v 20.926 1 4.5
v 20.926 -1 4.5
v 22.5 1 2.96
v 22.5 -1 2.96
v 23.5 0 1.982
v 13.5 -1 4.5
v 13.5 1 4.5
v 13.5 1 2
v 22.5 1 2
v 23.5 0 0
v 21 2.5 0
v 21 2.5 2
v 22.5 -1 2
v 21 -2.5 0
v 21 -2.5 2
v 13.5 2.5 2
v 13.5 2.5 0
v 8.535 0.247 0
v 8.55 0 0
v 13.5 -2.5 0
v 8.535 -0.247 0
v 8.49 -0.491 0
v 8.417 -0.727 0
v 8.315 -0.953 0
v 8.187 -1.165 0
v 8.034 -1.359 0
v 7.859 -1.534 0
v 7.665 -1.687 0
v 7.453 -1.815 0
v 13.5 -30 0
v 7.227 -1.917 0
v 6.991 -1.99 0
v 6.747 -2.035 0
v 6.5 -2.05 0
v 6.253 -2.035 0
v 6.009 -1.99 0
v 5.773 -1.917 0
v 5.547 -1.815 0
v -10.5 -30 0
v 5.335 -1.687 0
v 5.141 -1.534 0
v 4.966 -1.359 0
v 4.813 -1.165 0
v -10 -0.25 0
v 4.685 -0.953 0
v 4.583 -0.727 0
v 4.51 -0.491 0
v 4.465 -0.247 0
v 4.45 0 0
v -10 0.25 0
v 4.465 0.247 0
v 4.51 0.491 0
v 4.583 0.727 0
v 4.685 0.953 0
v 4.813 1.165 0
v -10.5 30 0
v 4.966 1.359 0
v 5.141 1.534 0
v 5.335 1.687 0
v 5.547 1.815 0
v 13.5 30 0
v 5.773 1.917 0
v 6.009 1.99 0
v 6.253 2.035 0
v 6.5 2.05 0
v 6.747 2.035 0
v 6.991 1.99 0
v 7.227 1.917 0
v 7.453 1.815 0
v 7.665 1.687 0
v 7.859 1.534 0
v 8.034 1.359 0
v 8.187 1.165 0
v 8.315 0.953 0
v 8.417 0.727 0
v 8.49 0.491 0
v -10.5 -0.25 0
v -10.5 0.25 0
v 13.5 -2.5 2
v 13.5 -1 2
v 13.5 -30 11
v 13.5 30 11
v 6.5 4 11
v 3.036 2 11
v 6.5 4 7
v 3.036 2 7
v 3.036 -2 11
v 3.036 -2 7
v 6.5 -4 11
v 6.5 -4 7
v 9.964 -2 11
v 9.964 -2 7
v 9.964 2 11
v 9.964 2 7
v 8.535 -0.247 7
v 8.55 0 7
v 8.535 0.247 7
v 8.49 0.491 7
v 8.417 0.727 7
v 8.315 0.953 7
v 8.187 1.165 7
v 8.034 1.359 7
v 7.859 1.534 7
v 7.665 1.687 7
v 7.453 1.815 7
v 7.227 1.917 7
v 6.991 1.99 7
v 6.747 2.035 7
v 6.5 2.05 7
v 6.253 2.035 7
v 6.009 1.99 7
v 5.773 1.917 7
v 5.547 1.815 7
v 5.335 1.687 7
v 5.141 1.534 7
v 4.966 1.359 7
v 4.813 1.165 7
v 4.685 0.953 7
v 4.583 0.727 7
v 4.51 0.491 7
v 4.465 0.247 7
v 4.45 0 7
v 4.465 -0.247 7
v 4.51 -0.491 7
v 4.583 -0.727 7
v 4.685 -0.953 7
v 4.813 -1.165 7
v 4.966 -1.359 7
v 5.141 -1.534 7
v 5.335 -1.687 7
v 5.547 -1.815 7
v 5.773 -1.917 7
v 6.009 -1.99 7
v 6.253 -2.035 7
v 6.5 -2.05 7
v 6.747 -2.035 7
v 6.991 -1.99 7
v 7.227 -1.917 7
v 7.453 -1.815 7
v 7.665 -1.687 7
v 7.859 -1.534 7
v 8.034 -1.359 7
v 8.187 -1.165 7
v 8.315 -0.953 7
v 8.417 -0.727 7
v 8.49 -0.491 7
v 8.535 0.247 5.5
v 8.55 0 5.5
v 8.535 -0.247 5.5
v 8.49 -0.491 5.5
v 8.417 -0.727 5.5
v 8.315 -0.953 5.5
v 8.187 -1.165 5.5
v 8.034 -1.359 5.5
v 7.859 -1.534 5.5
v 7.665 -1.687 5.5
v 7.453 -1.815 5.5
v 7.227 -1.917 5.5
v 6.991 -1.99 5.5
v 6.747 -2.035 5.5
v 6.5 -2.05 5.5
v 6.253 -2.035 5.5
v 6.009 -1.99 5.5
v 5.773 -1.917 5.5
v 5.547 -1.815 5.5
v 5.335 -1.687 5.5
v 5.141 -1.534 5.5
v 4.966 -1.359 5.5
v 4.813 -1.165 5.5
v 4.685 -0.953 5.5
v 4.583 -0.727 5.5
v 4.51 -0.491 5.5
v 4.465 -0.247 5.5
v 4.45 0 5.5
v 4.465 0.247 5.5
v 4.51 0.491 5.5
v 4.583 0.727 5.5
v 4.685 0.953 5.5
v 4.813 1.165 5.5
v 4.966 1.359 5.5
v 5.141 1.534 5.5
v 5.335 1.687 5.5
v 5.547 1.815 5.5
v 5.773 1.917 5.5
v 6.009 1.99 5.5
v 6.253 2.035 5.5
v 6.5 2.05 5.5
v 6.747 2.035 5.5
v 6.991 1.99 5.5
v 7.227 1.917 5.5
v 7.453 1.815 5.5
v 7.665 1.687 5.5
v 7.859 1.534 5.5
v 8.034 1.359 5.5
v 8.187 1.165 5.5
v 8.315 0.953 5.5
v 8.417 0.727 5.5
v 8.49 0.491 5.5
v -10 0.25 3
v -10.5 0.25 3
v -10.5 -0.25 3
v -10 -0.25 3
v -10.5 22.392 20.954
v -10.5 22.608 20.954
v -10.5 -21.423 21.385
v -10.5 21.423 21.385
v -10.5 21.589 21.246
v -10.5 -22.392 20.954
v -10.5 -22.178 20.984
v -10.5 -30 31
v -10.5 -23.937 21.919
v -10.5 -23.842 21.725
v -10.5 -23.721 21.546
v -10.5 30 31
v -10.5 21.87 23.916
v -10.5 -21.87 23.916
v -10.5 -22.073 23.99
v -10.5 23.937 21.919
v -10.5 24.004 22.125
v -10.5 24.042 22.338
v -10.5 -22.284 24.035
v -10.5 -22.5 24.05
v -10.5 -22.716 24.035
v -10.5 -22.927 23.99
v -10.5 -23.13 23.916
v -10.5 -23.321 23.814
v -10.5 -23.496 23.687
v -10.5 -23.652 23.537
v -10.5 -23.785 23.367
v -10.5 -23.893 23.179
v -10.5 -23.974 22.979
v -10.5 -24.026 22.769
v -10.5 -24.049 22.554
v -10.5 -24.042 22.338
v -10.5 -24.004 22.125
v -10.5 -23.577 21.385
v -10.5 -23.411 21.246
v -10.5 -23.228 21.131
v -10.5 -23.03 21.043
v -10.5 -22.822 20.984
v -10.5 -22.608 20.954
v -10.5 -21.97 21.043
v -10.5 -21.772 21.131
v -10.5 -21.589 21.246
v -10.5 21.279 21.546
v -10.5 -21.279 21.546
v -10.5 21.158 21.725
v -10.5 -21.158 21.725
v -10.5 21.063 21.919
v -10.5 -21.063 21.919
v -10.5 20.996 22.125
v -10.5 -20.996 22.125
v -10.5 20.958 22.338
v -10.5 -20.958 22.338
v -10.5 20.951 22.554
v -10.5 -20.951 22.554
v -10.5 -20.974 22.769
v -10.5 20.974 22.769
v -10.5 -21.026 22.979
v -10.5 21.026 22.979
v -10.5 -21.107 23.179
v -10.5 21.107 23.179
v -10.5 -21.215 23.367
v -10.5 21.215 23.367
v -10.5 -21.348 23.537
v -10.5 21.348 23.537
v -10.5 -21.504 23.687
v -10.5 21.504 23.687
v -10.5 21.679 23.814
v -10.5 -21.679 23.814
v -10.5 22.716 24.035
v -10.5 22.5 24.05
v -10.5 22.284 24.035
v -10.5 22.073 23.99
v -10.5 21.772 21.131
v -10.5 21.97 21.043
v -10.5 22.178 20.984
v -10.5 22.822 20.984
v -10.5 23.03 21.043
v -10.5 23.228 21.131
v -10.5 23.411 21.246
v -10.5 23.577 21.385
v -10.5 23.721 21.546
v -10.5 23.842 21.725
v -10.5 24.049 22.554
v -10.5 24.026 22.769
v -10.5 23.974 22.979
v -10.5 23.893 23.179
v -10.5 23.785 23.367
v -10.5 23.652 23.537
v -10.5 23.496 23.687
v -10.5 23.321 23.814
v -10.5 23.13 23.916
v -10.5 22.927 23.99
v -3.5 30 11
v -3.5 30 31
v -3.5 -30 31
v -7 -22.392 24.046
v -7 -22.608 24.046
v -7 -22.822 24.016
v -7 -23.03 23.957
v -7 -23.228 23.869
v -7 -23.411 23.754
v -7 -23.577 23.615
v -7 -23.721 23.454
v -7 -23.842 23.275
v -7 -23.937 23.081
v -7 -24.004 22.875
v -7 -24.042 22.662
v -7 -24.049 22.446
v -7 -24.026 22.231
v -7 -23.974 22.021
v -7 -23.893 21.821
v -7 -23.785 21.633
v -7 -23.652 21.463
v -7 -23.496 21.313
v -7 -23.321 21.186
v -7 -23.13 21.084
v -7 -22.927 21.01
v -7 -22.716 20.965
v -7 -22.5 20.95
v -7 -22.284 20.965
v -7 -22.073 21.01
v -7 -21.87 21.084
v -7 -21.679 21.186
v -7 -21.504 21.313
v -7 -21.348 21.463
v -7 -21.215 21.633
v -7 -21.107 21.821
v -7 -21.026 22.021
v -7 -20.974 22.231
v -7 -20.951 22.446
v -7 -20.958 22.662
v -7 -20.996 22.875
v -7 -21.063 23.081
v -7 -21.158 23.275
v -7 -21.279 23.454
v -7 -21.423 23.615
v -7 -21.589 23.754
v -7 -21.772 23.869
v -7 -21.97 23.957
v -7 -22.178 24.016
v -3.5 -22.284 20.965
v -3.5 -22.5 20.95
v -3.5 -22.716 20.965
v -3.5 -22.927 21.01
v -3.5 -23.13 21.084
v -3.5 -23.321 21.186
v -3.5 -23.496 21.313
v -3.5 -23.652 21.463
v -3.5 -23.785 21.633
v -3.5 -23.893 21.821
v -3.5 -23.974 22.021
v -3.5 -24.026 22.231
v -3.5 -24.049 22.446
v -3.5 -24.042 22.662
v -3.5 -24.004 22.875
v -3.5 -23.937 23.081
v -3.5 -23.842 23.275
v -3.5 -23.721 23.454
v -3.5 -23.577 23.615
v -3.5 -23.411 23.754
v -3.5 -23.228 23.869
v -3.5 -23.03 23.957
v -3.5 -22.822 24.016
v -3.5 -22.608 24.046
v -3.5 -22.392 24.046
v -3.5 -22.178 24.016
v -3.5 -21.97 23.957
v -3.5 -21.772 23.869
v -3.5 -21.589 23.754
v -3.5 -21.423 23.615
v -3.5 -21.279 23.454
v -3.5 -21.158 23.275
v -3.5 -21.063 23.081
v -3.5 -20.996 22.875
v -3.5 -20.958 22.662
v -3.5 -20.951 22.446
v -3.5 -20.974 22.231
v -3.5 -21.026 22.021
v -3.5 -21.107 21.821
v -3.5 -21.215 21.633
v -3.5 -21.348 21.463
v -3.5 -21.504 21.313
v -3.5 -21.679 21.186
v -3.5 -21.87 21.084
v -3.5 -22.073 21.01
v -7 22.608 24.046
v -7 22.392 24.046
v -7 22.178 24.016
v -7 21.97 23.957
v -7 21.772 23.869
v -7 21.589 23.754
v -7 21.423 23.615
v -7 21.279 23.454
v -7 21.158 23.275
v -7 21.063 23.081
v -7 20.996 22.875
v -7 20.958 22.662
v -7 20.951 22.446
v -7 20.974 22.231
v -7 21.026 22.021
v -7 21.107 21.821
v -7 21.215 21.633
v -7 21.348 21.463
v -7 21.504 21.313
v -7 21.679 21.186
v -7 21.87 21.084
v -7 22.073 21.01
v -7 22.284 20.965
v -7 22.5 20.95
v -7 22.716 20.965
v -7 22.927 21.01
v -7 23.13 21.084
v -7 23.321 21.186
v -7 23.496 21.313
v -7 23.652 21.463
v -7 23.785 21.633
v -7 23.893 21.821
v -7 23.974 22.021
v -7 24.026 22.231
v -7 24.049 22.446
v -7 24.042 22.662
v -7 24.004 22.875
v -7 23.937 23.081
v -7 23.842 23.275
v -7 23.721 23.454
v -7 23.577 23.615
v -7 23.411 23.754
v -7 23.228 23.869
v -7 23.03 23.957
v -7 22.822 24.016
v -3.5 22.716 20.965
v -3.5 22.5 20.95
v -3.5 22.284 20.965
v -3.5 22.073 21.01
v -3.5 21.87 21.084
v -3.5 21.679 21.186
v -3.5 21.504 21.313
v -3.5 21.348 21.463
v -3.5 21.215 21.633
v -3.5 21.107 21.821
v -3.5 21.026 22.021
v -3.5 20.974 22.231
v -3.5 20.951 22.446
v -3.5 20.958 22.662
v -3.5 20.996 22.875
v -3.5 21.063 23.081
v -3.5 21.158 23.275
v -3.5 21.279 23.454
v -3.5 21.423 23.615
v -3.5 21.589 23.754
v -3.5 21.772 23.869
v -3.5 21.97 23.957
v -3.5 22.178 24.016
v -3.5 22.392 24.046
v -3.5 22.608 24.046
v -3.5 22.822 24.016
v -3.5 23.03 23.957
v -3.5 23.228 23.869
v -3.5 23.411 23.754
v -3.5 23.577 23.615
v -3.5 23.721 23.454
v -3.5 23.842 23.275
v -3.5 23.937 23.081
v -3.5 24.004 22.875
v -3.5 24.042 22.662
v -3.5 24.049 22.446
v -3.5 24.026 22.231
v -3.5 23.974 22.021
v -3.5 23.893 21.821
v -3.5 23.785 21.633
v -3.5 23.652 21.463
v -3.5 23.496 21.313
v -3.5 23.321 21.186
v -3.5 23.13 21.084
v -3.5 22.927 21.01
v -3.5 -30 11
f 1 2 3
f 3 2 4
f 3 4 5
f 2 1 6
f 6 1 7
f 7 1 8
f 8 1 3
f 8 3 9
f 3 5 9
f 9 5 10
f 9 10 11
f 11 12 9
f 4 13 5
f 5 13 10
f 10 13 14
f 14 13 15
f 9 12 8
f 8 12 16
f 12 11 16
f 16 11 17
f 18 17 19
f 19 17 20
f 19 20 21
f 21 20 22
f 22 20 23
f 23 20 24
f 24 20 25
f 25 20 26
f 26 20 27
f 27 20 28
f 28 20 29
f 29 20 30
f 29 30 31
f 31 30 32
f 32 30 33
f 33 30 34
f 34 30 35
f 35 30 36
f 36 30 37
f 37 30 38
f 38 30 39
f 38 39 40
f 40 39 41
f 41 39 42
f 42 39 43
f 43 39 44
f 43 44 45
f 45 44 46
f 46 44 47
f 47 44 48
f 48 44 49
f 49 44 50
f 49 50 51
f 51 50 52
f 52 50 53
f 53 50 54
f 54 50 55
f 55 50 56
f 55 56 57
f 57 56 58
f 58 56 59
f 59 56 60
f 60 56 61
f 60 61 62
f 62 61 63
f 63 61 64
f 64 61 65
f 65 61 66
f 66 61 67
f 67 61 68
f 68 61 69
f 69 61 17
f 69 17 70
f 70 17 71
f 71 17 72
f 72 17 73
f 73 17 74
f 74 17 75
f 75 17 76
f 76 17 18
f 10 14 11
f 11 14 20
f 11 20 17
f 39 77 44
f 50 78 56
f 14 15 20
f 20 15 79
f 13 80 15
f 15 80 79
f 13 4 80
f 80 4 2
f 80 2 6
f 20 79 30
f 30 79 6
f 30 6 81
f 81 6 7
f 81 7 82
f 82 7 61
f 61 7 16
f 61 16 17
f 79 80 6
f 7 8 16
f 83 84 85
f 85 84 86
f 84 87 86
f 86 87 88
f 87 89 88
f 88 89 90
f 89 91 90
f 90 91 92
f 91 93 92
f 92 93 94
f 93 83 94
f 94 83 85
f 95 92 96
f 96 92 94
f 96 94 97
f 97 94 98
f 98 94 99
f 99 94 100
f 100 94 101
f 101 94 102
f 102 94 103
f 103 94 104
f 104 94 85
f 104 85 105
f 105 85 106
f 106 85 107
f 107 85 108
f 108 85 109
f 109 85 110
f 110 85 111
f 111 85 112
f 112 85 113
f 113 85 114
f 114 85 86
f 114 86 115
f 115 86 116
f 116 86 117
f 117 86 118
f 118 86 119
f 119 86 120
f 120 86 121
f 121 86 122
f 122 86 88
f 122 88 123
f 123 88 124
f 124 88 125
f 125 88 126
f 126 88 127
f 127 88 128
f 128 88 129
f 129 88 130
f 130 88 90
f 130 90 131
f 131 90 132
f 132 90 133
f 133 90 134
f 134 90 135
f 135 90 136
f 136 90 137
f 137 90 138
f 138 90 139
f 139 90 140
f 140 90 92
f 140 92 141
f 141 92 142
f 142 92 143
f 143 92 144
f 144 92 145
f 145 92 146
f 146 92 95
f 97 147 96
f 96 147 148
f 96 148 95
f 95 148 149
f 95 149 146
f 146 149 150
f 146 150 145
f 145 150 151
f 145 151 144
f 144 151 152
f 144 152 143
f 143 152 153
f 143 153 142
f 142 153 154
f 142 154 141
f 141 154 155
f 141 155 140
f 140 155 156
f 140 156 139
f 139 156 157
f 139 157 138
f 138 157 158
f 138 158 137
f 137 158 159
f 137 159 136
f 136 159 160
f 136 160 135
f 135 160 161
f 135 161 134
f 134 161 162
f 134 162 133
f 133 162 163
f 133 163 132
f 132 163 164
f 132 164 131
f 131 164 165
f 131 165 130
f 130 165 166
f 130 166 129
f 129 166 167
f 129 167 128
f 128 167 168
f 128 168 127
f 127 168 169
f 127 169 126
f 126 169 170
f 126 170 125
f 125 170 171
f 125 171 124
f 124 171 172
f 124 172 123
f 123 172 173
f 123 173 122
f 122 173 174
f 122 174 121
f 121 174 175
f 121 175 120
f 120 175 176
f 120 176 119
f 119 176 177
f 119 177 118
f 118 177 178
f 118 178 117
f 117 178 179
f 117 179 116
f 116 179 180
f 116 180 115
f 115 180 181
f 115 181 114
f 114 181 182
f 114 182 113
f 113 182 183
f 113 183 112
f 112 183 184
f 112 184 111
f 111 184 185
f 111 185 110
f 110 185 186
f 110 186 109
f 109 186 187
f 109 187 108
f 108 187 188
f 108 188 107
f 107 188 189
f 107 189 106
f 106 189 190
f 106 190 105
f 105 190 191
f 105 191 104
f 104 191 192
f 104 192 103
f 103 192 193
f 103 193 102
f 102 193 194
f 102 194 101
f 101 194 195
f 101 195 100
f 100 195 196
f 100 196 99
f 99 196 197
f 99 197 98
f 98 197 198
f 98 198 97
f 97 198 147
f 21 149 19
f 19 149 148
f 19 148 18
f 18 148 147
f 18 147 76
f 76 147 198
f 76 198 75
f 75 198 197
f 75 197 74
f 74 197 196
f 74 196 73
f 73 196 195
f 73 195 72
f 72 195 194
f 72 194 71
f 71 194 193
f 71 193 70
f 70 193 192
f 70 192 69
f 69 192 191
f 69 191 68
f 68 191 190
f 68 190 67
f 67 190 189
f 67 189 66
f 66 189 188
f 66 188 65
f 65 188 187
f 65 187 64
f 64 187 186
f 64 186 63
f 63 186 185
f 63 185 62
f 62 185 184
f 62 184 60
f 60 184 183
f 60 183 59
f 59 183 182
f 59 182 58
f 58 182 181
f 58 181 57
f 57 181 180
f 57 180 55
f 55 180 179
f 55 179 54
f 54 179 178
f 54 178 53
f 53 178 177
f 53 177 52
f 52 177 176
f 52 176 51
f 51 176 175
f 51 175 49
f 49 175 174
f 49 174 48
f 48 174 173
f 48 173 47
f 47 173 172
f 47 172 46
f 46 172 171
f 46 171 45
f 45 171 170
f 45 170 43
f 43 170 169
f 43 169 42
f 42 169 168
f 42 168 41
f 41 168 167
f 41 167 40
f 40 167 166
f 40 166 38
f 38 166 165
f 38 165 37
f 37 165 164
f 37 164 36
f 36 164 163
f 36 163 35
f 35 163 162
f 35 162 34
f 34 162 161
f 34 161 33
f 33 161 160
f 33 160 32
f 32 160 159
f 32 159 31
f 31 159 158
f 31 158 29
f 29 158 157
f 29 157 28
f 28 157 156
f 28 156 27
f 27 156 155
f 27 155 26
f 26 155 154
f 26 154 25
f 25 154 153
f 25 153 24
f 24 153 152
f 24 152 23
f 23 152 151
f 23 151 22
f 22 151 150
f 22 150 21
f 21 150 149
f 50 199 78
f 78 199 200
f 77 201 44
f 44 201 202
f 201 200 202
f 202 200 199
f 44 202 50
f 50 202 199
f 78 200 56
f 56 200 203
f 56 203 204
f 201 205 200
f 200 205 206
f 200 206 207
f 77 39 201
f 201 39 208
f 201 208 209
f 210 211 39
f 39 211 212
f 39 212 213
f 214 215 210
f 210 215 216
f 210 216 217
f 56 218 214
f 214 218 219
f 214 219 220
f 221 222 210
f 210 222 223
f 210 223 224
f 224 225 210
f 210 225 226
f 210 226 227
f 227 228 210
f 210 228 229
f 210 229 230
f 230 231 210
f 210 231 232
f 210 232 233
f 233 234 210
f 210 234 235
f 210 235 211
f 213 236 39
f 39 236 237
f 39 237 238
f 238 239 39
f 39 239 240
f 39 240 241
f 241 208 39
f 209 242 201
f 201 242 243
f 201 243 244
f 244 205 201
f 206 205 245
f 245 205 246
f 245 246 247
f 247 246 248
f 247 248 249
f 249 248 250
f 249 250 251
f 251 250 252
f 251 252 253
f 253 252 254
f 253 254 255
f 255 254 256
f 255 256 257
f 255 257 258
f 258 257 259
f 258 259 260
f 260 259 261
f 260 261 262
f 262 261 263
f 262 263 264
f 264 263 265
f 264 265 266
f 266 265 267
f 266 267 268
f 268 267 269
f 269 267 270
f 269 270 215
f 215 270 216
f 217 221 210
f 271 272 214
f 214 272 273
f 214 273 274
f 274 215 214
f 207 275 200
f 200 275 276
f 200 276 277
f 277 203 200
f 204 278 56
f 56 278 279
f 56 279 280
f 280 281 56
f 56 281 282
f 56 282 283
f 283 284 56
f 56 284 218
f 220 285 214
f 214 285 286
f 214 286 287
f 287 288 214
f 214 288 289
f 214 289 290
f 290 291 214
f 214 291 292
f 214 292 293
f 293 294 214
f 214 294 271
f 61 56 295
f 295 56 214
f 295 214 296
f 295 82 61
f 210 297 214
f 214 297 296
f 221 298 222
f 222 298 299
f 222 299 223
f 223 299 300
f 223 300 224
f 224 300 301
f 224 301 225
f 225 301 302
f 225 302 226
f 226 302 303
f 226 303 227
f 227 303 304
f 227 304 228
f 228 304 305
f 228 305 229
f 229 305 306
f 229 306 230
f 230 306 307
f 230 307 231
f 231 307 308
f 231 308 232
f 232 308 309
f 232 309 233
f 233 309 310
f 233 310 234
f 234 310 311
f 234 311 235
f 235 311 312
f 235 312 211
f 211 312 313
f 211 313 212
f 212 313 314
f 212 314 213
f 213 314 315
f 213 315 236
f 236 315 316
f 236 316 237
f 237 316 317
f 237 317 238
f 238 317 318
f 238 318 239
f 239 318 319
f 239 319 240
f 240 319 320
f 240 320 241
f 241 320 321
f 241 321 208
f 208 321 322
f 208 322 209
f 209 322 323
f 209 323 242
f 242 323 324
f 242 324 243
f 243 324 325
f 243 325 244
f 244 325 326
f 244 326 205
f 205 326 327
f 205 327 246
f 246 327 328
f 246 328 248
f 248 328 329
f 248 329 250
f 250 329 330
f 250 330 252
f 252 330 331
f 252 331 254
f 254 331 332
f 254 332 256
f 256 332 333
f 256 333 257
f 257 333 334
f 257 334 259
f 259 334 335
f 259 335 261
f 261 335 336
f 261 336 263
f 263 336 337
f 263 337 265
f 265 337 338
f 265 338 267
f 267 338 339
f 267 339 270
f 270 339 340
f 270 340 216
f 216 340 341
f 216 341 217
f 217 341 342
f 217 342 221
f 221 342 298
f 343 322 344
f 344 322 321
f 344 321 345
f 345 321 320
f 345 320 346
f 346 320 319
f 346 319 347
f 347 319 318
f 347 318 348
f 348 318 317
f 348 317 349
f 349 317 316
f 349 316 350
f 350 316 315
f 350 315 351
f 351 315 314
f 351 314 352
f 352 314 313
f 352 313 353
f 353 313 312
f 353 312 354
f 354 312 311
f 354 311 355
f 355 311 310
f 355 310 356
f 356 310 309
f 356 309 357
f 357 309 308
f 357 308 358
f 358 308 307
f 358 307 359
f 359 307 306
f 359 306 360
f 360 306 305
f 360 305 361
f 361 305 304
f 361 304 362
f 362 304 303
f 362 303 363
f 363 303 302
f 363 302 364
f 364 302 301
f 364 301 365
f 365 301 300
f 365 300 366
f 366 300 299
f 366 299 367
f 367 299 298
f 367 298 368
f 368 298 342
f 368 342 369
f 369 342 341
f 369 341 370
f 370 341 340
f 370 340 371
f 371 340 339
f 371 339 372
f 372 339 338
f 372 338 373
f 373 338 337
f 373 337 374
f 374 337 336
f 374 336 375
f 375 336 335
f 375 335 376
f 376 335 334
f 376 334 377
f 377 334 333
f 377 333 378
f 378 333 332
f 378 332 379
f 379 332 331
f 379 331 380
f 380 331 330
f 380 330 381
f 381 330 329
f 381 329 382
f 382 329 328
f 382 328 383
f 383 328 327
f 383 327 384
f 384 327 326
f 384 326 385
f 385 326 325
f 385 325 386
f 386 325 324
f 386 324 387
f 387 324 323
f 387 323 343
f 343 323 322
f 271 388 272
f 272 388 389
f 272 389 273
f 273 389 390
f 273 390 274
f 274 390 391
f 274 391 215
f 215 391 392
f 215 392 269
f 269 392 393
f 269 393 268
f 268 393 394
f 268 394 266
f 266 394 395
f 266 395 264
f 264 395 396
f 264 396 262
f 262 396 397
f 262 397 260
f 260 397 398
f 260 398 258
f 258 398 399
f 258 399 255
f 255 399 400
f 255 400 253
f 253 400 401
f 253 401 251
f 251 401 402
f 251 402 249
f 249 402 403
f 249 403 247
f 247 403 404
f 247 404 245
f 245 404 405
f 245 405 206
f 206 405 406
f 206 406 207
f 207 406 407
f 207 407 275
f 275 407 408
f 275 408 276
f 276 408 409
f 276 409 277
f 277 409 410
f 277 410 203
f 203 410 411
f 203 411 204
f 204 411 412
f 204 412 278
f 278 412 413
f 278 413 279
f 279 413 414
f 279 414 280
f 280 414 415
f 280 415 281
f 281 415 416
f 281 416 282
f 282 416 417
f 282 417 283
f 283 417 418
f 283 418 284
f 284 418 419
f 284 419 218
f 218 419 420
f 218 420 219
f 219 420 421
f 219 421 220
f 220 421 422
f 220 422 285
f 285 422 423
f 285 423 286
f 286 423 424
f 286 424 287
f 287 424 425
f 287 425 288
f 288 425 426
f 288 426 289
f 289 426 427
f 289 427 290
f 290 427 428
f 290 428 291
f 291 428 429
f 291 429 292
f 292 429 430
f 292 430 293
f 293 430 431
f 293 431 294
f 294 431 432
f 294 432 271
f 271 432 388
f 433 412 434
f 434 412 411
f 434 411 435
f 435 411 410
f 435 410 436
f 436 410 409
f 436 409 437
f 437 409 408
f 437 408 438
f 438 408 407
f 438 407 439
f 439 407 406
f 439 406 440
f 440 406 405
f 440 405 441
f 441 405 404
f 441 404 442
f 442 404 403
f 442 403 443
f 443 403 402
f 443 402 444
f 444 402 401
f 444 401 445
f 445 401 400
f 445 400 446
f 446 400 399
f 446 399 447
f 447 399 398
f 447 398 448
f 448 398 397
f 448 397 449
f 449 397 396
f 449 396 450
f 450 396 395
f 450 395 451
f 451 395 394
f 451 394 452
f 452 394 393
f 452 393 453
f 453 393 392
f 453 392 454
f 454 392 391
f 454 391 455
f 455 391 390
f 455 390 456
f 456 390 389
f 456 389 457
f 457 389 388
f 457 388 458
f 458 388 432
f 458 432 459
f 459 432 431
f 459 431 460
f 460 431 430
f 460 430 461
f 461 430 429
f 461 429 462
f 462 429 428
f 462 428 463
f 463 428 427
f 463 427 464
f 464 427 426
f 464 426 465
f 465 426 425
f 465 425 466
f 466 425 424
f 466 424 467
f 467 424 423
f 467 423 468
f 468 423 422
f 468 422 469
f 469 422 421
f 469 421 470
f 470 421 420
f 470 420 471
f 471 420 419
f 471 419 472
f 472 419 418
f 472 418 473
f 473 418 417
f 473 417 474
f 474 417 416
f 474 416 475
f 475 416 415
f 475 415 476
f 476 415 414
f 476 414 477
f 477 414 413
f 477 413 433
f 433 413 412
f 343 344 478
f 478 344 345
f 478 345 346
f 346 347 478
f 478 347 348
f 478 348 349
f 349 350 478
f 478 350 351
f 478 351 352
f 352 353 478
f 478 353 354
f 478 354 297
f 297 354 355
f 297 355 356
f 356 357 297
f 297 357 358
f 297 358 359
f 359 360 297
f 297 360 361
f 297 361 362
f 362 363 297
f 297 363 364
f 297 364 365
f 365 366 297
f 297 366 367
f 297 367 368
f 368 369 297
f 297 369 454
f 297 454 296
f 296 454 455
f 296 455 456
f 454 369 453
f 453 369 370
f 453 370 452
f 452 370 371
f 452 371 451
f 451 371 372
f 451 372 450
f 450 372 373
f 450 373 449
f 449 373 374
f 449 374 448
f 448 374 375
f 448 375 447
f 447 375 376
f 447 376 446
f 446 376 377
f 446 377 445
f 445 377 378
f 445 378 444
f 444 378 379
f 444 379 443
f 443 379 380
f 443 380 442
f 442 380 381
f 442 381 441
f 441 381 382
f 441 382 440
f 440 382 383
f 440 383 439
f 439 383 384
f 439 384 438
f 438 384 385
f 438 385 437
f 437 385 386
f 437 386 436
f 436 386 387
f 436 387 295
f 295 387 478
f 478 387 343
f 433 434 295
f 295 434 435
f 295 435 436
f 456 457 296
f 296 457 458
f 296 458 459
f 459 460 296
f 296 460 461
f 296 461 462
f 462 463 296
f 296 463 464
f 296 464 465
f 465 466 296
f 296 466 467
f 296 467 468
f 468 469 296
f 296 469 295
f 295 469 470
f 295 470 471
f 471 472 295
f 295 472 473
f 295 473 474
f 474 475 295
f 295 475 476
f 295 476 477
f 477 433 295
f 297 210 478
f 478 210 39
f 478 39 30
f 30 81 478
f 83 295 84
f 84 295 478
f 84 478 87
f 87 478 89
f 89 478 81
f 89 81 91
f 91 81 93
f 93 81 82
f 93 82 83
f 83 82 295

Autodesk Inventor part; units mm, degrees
ref_plane "YZ Plane" through (0, 0, 0) normal (1, 0, 0) x (0, 1, 0)
ref_plane "XZ Plane" through (0, 0, 0) normal (0, 1, 0) x (-1, 0, 0)
ref_plane "XY Plane" through (0, 0, 0) normal (0, 0, 1) x (1, 0, 0)
sketch "Skizze1" plane through (0, 0, 0) normal (0, 0, 1) x (1, 0, 0)
  line L0 (-13.5, 30) -> (13.5, 30)
  line L1 (13.5, 30) -> (13.5, -30)
  line L2 (13.5, -30) -> (-13.5, -30)
  line L3 (-13.5, -30) -> (-13.5, 30)
  line L4 (-13.5, 30) -> (13.5, -30) construction
  line L5 (13.5, 30) -> (-13.5, -30) construction
  point P0 (0, 0)
  dimension "d0" = 27
  dimension "d1" = 60
extrude "Extrusion1" add sketch "Skizze1" along normal blind 11
sketch "Skizze2" plane through (0, 0, 11) normal (0, 0, 1) x (1, 0, 0)
  line L0 (13.5, 30) -> (-13.5, 30) projected
  line L1 (-13.5, -30) -> (13.5, -30) projected
  line L2 (-13.5, 30) -> (-3.5, 30)
  line L3 (-3.5, 30) -> (-3.5, -30)
  line L4 (-3.5, -30) -> (-13.5, -30)
  line L5 (-13.5, -30) -> (-13.5, 30)
  point P0 (0, 0)
  dimension "d4" = 10
extrude "Extrusion2" add sketch "Skizze2" along normal blind 20
sketch "Skizze3" plane through (-3.5, -30, 11) normal (1, 0, 0) x (0, 0, -1)
  line L0 (0, 60) -> (0, 0) construction
  line L1 (0, 60) -> (-20, 60) construction
  line L2 (-20, 0) -> (-20, 60) construction
  line L3 (0, 0) -> (-20, 0) construction
  line L4 (0, 60) -> (0, 0) projected
  line L5 (0, 30) -> (-11.5, 30) construction
  line L6 (-11.5, 30) -> (-11.5, 52.5) construction
  line L7 (-11.5, 30) -> (-11.5, 7.5) construction
  circle A0 centre (-11.5, 7.5) radius 1.55
  circle A1 centre (-11.5, 52.5) radius 1.55
  point P0 (11, 30)
  dimension "d7" = 11.5
  dimension "d8" = 22.5
  dimension "d9" = 22.5
  dimension "d10" = 3.1
  dimension "d11" = 3.1
extrude "Extrusion3" cut sketch "Skizze3" against normal through all
sketch "Skizze4" plane through (-13.5, -30, 0) normal (-1, 0, 0) x (0, 0, 1)
  circle A0 centre (22.5, 7.5) radius 1.55 projected
  circle A1 centre (22.5, 52.5) radius 1.55 projected
  line L0 (0, 0) -> (0, 60) projected
  line L1 (0, 0) -> (31, 0) projected
  line L2 (31, 60) -> (31, 0) projected
  line L3 (0, 60) -> (31, 60) projected
  point P0 (0, 30)
extrude "Extrusion4" cut sketch "Skizze4" against normal blind 3
sketch "Skizze5" plane through (-10.5, -30, 0) normal (-1, 0, 0) x (0, 0, 1)
  line L0 (-3, 30.25) -> (3, 30.25)
  line L1 (3, 30.25) -> (3, 29.75)
  line L2 (3, 29.75) -> (-3, 29.75)
  line L3 (-3, 29.75) -> (-3, 30.25)
  line L4 (-3, 30.25) -> (3, 29.75) construction
  line L5 (3, 30.25) -> (-3, 29.75) construction
  point P0 (0, 30)
  dimension "d16" = 6
  dimension "d17" = 0.5
extrude "Extrusion5" cut sketch "Skizze5" against normal blind 0.5
sketch "Skizze6" plane through (0, 0, 11) normal (0, 0, 1) x (1, 0, 0)
  line L0 (-3.5, -30) -> (-3.5, 30) projected
  line L1 (-3.5, 0) -> (6.5, 0)
  circle A0 centre (6.5, 0) radius 2.05
  point P0 (0, 0)
  dimension "d20" = 10
  dimension "d21" = 4.1
extrude "Extrusion6" cut sketch "Skizze6" against normal through all
sketch "Skizze7" plane through (0, 0, 11) normal (0, 0, 1) x (1, 0, 0)
  circle A0 centre (6.5, 0) radius 2.05 projected
  line L0 (6.5, 0) -> (6.5, 4)
  line L1 (6.5, 0) -> (14.5, 0) construction
  line L2 (6.5, 4) -> (9.9641, 2)
  line L3 (9.9641, 2) -> (9.9641, -2)
  line L4 (9.9641, -2) -> (6.5, -4)
  line L5 (6.5, -4) -> (3.0359, -2)
  line L6 (3.0359, -2) -> (3.0359, 2)
  line L7 (3.0359, 2) -> (6.5, 4)
  point P0 (0, 0)
  dimension "d24" = 4
extrude "Extrusion7" cut sketch "Skizze7" against normal blind 4
sketch "Skizze8" plane through (13.5, -30, 0) normal (1, 0, 0) x (0, 0, -1)
  line L0 (0, 27.5) -> (-2, 27.5)
  line L1 (-2, 32.5) -> (0, 32.5)
  line L2 (2, 27.5) -> (-2, 32.5) construction
  line L3 (-2, 27.5) -> (2, 32.5) construction
  line L4 (0, 27.5) -> (0, 32.5)
  line L5 (0, 30.25) -> (0, 60) projected
  line L6 (-4.5, 29) -> (-4.5, 31)
  line L7 (-4.5, 31) -> (-2, 31)
  line L8 (0, 29.2) -> (-4.5, 31) construction
  line L9 (-4.5, 29) -> (0, 30.8) construction
  line L10 (-2, 27.5) -> (-2, 29)
  line L11 (-2, 31) -> (-2, 32.5)
  line L12 (-2, 29) -> (-4.5, 29)
  point P0 (0, 30)
extrude "Extrusion8" add sketch "Skizze8" along normal blind 10
sketch "Skizze9" plane through (13.5, -1, 4.5) normal (0, 0, 1) x (1, 0, 0)
  line L0 (10, -1.5) -> (10, 3.5) projected
  line L1 (10, 1) -> (7.5, -1.5)
  line L2 (0, -1.5) -> (10, -1.5) projected
  line L3 (10, 1) -> (13.5355, 1) construction
  line L4 (7.5, -1.5) -> (10, -1.5)
  line L5 (0, 3.5) -> (10, 3.5) projected
  line L6 (10, -1.5) -> (10, 3.5)
  line L7 (10, 3.5) -> (7.5, 3.5)
  line L8 (10, 1) -> (7.5, 3.5)
  point P0 (-13.5, 1)
  dimension "d35" = 135
extrude "Extrusion9" cut sketch "Skizze9" against normal blind 10
sketch "Skizze10" plane through (13.5, -2.5, 0) normal (0, -1, 0) x (1, 0, 0)
  line L0 (10, 4.5) -> (9, 4.5) projected
  line L1 (10, 4.5) -> (10, 1.9816)
  line L2 (10, 0) -> (10, 4.5) projected
  line L3 (10, 1.9816) -> (7.4258, 4.5)
  line L4 (0, 4.5) -> (9, 4.5) projected
  line L5 (10, 4.5) -> (7.4258, 4.5)
  point P0 (-13.5, 0)
extrude "Extrusion10" cut sketch "Skizze10" against normal blind 10
properties part number "cam_holder_hog_part"
